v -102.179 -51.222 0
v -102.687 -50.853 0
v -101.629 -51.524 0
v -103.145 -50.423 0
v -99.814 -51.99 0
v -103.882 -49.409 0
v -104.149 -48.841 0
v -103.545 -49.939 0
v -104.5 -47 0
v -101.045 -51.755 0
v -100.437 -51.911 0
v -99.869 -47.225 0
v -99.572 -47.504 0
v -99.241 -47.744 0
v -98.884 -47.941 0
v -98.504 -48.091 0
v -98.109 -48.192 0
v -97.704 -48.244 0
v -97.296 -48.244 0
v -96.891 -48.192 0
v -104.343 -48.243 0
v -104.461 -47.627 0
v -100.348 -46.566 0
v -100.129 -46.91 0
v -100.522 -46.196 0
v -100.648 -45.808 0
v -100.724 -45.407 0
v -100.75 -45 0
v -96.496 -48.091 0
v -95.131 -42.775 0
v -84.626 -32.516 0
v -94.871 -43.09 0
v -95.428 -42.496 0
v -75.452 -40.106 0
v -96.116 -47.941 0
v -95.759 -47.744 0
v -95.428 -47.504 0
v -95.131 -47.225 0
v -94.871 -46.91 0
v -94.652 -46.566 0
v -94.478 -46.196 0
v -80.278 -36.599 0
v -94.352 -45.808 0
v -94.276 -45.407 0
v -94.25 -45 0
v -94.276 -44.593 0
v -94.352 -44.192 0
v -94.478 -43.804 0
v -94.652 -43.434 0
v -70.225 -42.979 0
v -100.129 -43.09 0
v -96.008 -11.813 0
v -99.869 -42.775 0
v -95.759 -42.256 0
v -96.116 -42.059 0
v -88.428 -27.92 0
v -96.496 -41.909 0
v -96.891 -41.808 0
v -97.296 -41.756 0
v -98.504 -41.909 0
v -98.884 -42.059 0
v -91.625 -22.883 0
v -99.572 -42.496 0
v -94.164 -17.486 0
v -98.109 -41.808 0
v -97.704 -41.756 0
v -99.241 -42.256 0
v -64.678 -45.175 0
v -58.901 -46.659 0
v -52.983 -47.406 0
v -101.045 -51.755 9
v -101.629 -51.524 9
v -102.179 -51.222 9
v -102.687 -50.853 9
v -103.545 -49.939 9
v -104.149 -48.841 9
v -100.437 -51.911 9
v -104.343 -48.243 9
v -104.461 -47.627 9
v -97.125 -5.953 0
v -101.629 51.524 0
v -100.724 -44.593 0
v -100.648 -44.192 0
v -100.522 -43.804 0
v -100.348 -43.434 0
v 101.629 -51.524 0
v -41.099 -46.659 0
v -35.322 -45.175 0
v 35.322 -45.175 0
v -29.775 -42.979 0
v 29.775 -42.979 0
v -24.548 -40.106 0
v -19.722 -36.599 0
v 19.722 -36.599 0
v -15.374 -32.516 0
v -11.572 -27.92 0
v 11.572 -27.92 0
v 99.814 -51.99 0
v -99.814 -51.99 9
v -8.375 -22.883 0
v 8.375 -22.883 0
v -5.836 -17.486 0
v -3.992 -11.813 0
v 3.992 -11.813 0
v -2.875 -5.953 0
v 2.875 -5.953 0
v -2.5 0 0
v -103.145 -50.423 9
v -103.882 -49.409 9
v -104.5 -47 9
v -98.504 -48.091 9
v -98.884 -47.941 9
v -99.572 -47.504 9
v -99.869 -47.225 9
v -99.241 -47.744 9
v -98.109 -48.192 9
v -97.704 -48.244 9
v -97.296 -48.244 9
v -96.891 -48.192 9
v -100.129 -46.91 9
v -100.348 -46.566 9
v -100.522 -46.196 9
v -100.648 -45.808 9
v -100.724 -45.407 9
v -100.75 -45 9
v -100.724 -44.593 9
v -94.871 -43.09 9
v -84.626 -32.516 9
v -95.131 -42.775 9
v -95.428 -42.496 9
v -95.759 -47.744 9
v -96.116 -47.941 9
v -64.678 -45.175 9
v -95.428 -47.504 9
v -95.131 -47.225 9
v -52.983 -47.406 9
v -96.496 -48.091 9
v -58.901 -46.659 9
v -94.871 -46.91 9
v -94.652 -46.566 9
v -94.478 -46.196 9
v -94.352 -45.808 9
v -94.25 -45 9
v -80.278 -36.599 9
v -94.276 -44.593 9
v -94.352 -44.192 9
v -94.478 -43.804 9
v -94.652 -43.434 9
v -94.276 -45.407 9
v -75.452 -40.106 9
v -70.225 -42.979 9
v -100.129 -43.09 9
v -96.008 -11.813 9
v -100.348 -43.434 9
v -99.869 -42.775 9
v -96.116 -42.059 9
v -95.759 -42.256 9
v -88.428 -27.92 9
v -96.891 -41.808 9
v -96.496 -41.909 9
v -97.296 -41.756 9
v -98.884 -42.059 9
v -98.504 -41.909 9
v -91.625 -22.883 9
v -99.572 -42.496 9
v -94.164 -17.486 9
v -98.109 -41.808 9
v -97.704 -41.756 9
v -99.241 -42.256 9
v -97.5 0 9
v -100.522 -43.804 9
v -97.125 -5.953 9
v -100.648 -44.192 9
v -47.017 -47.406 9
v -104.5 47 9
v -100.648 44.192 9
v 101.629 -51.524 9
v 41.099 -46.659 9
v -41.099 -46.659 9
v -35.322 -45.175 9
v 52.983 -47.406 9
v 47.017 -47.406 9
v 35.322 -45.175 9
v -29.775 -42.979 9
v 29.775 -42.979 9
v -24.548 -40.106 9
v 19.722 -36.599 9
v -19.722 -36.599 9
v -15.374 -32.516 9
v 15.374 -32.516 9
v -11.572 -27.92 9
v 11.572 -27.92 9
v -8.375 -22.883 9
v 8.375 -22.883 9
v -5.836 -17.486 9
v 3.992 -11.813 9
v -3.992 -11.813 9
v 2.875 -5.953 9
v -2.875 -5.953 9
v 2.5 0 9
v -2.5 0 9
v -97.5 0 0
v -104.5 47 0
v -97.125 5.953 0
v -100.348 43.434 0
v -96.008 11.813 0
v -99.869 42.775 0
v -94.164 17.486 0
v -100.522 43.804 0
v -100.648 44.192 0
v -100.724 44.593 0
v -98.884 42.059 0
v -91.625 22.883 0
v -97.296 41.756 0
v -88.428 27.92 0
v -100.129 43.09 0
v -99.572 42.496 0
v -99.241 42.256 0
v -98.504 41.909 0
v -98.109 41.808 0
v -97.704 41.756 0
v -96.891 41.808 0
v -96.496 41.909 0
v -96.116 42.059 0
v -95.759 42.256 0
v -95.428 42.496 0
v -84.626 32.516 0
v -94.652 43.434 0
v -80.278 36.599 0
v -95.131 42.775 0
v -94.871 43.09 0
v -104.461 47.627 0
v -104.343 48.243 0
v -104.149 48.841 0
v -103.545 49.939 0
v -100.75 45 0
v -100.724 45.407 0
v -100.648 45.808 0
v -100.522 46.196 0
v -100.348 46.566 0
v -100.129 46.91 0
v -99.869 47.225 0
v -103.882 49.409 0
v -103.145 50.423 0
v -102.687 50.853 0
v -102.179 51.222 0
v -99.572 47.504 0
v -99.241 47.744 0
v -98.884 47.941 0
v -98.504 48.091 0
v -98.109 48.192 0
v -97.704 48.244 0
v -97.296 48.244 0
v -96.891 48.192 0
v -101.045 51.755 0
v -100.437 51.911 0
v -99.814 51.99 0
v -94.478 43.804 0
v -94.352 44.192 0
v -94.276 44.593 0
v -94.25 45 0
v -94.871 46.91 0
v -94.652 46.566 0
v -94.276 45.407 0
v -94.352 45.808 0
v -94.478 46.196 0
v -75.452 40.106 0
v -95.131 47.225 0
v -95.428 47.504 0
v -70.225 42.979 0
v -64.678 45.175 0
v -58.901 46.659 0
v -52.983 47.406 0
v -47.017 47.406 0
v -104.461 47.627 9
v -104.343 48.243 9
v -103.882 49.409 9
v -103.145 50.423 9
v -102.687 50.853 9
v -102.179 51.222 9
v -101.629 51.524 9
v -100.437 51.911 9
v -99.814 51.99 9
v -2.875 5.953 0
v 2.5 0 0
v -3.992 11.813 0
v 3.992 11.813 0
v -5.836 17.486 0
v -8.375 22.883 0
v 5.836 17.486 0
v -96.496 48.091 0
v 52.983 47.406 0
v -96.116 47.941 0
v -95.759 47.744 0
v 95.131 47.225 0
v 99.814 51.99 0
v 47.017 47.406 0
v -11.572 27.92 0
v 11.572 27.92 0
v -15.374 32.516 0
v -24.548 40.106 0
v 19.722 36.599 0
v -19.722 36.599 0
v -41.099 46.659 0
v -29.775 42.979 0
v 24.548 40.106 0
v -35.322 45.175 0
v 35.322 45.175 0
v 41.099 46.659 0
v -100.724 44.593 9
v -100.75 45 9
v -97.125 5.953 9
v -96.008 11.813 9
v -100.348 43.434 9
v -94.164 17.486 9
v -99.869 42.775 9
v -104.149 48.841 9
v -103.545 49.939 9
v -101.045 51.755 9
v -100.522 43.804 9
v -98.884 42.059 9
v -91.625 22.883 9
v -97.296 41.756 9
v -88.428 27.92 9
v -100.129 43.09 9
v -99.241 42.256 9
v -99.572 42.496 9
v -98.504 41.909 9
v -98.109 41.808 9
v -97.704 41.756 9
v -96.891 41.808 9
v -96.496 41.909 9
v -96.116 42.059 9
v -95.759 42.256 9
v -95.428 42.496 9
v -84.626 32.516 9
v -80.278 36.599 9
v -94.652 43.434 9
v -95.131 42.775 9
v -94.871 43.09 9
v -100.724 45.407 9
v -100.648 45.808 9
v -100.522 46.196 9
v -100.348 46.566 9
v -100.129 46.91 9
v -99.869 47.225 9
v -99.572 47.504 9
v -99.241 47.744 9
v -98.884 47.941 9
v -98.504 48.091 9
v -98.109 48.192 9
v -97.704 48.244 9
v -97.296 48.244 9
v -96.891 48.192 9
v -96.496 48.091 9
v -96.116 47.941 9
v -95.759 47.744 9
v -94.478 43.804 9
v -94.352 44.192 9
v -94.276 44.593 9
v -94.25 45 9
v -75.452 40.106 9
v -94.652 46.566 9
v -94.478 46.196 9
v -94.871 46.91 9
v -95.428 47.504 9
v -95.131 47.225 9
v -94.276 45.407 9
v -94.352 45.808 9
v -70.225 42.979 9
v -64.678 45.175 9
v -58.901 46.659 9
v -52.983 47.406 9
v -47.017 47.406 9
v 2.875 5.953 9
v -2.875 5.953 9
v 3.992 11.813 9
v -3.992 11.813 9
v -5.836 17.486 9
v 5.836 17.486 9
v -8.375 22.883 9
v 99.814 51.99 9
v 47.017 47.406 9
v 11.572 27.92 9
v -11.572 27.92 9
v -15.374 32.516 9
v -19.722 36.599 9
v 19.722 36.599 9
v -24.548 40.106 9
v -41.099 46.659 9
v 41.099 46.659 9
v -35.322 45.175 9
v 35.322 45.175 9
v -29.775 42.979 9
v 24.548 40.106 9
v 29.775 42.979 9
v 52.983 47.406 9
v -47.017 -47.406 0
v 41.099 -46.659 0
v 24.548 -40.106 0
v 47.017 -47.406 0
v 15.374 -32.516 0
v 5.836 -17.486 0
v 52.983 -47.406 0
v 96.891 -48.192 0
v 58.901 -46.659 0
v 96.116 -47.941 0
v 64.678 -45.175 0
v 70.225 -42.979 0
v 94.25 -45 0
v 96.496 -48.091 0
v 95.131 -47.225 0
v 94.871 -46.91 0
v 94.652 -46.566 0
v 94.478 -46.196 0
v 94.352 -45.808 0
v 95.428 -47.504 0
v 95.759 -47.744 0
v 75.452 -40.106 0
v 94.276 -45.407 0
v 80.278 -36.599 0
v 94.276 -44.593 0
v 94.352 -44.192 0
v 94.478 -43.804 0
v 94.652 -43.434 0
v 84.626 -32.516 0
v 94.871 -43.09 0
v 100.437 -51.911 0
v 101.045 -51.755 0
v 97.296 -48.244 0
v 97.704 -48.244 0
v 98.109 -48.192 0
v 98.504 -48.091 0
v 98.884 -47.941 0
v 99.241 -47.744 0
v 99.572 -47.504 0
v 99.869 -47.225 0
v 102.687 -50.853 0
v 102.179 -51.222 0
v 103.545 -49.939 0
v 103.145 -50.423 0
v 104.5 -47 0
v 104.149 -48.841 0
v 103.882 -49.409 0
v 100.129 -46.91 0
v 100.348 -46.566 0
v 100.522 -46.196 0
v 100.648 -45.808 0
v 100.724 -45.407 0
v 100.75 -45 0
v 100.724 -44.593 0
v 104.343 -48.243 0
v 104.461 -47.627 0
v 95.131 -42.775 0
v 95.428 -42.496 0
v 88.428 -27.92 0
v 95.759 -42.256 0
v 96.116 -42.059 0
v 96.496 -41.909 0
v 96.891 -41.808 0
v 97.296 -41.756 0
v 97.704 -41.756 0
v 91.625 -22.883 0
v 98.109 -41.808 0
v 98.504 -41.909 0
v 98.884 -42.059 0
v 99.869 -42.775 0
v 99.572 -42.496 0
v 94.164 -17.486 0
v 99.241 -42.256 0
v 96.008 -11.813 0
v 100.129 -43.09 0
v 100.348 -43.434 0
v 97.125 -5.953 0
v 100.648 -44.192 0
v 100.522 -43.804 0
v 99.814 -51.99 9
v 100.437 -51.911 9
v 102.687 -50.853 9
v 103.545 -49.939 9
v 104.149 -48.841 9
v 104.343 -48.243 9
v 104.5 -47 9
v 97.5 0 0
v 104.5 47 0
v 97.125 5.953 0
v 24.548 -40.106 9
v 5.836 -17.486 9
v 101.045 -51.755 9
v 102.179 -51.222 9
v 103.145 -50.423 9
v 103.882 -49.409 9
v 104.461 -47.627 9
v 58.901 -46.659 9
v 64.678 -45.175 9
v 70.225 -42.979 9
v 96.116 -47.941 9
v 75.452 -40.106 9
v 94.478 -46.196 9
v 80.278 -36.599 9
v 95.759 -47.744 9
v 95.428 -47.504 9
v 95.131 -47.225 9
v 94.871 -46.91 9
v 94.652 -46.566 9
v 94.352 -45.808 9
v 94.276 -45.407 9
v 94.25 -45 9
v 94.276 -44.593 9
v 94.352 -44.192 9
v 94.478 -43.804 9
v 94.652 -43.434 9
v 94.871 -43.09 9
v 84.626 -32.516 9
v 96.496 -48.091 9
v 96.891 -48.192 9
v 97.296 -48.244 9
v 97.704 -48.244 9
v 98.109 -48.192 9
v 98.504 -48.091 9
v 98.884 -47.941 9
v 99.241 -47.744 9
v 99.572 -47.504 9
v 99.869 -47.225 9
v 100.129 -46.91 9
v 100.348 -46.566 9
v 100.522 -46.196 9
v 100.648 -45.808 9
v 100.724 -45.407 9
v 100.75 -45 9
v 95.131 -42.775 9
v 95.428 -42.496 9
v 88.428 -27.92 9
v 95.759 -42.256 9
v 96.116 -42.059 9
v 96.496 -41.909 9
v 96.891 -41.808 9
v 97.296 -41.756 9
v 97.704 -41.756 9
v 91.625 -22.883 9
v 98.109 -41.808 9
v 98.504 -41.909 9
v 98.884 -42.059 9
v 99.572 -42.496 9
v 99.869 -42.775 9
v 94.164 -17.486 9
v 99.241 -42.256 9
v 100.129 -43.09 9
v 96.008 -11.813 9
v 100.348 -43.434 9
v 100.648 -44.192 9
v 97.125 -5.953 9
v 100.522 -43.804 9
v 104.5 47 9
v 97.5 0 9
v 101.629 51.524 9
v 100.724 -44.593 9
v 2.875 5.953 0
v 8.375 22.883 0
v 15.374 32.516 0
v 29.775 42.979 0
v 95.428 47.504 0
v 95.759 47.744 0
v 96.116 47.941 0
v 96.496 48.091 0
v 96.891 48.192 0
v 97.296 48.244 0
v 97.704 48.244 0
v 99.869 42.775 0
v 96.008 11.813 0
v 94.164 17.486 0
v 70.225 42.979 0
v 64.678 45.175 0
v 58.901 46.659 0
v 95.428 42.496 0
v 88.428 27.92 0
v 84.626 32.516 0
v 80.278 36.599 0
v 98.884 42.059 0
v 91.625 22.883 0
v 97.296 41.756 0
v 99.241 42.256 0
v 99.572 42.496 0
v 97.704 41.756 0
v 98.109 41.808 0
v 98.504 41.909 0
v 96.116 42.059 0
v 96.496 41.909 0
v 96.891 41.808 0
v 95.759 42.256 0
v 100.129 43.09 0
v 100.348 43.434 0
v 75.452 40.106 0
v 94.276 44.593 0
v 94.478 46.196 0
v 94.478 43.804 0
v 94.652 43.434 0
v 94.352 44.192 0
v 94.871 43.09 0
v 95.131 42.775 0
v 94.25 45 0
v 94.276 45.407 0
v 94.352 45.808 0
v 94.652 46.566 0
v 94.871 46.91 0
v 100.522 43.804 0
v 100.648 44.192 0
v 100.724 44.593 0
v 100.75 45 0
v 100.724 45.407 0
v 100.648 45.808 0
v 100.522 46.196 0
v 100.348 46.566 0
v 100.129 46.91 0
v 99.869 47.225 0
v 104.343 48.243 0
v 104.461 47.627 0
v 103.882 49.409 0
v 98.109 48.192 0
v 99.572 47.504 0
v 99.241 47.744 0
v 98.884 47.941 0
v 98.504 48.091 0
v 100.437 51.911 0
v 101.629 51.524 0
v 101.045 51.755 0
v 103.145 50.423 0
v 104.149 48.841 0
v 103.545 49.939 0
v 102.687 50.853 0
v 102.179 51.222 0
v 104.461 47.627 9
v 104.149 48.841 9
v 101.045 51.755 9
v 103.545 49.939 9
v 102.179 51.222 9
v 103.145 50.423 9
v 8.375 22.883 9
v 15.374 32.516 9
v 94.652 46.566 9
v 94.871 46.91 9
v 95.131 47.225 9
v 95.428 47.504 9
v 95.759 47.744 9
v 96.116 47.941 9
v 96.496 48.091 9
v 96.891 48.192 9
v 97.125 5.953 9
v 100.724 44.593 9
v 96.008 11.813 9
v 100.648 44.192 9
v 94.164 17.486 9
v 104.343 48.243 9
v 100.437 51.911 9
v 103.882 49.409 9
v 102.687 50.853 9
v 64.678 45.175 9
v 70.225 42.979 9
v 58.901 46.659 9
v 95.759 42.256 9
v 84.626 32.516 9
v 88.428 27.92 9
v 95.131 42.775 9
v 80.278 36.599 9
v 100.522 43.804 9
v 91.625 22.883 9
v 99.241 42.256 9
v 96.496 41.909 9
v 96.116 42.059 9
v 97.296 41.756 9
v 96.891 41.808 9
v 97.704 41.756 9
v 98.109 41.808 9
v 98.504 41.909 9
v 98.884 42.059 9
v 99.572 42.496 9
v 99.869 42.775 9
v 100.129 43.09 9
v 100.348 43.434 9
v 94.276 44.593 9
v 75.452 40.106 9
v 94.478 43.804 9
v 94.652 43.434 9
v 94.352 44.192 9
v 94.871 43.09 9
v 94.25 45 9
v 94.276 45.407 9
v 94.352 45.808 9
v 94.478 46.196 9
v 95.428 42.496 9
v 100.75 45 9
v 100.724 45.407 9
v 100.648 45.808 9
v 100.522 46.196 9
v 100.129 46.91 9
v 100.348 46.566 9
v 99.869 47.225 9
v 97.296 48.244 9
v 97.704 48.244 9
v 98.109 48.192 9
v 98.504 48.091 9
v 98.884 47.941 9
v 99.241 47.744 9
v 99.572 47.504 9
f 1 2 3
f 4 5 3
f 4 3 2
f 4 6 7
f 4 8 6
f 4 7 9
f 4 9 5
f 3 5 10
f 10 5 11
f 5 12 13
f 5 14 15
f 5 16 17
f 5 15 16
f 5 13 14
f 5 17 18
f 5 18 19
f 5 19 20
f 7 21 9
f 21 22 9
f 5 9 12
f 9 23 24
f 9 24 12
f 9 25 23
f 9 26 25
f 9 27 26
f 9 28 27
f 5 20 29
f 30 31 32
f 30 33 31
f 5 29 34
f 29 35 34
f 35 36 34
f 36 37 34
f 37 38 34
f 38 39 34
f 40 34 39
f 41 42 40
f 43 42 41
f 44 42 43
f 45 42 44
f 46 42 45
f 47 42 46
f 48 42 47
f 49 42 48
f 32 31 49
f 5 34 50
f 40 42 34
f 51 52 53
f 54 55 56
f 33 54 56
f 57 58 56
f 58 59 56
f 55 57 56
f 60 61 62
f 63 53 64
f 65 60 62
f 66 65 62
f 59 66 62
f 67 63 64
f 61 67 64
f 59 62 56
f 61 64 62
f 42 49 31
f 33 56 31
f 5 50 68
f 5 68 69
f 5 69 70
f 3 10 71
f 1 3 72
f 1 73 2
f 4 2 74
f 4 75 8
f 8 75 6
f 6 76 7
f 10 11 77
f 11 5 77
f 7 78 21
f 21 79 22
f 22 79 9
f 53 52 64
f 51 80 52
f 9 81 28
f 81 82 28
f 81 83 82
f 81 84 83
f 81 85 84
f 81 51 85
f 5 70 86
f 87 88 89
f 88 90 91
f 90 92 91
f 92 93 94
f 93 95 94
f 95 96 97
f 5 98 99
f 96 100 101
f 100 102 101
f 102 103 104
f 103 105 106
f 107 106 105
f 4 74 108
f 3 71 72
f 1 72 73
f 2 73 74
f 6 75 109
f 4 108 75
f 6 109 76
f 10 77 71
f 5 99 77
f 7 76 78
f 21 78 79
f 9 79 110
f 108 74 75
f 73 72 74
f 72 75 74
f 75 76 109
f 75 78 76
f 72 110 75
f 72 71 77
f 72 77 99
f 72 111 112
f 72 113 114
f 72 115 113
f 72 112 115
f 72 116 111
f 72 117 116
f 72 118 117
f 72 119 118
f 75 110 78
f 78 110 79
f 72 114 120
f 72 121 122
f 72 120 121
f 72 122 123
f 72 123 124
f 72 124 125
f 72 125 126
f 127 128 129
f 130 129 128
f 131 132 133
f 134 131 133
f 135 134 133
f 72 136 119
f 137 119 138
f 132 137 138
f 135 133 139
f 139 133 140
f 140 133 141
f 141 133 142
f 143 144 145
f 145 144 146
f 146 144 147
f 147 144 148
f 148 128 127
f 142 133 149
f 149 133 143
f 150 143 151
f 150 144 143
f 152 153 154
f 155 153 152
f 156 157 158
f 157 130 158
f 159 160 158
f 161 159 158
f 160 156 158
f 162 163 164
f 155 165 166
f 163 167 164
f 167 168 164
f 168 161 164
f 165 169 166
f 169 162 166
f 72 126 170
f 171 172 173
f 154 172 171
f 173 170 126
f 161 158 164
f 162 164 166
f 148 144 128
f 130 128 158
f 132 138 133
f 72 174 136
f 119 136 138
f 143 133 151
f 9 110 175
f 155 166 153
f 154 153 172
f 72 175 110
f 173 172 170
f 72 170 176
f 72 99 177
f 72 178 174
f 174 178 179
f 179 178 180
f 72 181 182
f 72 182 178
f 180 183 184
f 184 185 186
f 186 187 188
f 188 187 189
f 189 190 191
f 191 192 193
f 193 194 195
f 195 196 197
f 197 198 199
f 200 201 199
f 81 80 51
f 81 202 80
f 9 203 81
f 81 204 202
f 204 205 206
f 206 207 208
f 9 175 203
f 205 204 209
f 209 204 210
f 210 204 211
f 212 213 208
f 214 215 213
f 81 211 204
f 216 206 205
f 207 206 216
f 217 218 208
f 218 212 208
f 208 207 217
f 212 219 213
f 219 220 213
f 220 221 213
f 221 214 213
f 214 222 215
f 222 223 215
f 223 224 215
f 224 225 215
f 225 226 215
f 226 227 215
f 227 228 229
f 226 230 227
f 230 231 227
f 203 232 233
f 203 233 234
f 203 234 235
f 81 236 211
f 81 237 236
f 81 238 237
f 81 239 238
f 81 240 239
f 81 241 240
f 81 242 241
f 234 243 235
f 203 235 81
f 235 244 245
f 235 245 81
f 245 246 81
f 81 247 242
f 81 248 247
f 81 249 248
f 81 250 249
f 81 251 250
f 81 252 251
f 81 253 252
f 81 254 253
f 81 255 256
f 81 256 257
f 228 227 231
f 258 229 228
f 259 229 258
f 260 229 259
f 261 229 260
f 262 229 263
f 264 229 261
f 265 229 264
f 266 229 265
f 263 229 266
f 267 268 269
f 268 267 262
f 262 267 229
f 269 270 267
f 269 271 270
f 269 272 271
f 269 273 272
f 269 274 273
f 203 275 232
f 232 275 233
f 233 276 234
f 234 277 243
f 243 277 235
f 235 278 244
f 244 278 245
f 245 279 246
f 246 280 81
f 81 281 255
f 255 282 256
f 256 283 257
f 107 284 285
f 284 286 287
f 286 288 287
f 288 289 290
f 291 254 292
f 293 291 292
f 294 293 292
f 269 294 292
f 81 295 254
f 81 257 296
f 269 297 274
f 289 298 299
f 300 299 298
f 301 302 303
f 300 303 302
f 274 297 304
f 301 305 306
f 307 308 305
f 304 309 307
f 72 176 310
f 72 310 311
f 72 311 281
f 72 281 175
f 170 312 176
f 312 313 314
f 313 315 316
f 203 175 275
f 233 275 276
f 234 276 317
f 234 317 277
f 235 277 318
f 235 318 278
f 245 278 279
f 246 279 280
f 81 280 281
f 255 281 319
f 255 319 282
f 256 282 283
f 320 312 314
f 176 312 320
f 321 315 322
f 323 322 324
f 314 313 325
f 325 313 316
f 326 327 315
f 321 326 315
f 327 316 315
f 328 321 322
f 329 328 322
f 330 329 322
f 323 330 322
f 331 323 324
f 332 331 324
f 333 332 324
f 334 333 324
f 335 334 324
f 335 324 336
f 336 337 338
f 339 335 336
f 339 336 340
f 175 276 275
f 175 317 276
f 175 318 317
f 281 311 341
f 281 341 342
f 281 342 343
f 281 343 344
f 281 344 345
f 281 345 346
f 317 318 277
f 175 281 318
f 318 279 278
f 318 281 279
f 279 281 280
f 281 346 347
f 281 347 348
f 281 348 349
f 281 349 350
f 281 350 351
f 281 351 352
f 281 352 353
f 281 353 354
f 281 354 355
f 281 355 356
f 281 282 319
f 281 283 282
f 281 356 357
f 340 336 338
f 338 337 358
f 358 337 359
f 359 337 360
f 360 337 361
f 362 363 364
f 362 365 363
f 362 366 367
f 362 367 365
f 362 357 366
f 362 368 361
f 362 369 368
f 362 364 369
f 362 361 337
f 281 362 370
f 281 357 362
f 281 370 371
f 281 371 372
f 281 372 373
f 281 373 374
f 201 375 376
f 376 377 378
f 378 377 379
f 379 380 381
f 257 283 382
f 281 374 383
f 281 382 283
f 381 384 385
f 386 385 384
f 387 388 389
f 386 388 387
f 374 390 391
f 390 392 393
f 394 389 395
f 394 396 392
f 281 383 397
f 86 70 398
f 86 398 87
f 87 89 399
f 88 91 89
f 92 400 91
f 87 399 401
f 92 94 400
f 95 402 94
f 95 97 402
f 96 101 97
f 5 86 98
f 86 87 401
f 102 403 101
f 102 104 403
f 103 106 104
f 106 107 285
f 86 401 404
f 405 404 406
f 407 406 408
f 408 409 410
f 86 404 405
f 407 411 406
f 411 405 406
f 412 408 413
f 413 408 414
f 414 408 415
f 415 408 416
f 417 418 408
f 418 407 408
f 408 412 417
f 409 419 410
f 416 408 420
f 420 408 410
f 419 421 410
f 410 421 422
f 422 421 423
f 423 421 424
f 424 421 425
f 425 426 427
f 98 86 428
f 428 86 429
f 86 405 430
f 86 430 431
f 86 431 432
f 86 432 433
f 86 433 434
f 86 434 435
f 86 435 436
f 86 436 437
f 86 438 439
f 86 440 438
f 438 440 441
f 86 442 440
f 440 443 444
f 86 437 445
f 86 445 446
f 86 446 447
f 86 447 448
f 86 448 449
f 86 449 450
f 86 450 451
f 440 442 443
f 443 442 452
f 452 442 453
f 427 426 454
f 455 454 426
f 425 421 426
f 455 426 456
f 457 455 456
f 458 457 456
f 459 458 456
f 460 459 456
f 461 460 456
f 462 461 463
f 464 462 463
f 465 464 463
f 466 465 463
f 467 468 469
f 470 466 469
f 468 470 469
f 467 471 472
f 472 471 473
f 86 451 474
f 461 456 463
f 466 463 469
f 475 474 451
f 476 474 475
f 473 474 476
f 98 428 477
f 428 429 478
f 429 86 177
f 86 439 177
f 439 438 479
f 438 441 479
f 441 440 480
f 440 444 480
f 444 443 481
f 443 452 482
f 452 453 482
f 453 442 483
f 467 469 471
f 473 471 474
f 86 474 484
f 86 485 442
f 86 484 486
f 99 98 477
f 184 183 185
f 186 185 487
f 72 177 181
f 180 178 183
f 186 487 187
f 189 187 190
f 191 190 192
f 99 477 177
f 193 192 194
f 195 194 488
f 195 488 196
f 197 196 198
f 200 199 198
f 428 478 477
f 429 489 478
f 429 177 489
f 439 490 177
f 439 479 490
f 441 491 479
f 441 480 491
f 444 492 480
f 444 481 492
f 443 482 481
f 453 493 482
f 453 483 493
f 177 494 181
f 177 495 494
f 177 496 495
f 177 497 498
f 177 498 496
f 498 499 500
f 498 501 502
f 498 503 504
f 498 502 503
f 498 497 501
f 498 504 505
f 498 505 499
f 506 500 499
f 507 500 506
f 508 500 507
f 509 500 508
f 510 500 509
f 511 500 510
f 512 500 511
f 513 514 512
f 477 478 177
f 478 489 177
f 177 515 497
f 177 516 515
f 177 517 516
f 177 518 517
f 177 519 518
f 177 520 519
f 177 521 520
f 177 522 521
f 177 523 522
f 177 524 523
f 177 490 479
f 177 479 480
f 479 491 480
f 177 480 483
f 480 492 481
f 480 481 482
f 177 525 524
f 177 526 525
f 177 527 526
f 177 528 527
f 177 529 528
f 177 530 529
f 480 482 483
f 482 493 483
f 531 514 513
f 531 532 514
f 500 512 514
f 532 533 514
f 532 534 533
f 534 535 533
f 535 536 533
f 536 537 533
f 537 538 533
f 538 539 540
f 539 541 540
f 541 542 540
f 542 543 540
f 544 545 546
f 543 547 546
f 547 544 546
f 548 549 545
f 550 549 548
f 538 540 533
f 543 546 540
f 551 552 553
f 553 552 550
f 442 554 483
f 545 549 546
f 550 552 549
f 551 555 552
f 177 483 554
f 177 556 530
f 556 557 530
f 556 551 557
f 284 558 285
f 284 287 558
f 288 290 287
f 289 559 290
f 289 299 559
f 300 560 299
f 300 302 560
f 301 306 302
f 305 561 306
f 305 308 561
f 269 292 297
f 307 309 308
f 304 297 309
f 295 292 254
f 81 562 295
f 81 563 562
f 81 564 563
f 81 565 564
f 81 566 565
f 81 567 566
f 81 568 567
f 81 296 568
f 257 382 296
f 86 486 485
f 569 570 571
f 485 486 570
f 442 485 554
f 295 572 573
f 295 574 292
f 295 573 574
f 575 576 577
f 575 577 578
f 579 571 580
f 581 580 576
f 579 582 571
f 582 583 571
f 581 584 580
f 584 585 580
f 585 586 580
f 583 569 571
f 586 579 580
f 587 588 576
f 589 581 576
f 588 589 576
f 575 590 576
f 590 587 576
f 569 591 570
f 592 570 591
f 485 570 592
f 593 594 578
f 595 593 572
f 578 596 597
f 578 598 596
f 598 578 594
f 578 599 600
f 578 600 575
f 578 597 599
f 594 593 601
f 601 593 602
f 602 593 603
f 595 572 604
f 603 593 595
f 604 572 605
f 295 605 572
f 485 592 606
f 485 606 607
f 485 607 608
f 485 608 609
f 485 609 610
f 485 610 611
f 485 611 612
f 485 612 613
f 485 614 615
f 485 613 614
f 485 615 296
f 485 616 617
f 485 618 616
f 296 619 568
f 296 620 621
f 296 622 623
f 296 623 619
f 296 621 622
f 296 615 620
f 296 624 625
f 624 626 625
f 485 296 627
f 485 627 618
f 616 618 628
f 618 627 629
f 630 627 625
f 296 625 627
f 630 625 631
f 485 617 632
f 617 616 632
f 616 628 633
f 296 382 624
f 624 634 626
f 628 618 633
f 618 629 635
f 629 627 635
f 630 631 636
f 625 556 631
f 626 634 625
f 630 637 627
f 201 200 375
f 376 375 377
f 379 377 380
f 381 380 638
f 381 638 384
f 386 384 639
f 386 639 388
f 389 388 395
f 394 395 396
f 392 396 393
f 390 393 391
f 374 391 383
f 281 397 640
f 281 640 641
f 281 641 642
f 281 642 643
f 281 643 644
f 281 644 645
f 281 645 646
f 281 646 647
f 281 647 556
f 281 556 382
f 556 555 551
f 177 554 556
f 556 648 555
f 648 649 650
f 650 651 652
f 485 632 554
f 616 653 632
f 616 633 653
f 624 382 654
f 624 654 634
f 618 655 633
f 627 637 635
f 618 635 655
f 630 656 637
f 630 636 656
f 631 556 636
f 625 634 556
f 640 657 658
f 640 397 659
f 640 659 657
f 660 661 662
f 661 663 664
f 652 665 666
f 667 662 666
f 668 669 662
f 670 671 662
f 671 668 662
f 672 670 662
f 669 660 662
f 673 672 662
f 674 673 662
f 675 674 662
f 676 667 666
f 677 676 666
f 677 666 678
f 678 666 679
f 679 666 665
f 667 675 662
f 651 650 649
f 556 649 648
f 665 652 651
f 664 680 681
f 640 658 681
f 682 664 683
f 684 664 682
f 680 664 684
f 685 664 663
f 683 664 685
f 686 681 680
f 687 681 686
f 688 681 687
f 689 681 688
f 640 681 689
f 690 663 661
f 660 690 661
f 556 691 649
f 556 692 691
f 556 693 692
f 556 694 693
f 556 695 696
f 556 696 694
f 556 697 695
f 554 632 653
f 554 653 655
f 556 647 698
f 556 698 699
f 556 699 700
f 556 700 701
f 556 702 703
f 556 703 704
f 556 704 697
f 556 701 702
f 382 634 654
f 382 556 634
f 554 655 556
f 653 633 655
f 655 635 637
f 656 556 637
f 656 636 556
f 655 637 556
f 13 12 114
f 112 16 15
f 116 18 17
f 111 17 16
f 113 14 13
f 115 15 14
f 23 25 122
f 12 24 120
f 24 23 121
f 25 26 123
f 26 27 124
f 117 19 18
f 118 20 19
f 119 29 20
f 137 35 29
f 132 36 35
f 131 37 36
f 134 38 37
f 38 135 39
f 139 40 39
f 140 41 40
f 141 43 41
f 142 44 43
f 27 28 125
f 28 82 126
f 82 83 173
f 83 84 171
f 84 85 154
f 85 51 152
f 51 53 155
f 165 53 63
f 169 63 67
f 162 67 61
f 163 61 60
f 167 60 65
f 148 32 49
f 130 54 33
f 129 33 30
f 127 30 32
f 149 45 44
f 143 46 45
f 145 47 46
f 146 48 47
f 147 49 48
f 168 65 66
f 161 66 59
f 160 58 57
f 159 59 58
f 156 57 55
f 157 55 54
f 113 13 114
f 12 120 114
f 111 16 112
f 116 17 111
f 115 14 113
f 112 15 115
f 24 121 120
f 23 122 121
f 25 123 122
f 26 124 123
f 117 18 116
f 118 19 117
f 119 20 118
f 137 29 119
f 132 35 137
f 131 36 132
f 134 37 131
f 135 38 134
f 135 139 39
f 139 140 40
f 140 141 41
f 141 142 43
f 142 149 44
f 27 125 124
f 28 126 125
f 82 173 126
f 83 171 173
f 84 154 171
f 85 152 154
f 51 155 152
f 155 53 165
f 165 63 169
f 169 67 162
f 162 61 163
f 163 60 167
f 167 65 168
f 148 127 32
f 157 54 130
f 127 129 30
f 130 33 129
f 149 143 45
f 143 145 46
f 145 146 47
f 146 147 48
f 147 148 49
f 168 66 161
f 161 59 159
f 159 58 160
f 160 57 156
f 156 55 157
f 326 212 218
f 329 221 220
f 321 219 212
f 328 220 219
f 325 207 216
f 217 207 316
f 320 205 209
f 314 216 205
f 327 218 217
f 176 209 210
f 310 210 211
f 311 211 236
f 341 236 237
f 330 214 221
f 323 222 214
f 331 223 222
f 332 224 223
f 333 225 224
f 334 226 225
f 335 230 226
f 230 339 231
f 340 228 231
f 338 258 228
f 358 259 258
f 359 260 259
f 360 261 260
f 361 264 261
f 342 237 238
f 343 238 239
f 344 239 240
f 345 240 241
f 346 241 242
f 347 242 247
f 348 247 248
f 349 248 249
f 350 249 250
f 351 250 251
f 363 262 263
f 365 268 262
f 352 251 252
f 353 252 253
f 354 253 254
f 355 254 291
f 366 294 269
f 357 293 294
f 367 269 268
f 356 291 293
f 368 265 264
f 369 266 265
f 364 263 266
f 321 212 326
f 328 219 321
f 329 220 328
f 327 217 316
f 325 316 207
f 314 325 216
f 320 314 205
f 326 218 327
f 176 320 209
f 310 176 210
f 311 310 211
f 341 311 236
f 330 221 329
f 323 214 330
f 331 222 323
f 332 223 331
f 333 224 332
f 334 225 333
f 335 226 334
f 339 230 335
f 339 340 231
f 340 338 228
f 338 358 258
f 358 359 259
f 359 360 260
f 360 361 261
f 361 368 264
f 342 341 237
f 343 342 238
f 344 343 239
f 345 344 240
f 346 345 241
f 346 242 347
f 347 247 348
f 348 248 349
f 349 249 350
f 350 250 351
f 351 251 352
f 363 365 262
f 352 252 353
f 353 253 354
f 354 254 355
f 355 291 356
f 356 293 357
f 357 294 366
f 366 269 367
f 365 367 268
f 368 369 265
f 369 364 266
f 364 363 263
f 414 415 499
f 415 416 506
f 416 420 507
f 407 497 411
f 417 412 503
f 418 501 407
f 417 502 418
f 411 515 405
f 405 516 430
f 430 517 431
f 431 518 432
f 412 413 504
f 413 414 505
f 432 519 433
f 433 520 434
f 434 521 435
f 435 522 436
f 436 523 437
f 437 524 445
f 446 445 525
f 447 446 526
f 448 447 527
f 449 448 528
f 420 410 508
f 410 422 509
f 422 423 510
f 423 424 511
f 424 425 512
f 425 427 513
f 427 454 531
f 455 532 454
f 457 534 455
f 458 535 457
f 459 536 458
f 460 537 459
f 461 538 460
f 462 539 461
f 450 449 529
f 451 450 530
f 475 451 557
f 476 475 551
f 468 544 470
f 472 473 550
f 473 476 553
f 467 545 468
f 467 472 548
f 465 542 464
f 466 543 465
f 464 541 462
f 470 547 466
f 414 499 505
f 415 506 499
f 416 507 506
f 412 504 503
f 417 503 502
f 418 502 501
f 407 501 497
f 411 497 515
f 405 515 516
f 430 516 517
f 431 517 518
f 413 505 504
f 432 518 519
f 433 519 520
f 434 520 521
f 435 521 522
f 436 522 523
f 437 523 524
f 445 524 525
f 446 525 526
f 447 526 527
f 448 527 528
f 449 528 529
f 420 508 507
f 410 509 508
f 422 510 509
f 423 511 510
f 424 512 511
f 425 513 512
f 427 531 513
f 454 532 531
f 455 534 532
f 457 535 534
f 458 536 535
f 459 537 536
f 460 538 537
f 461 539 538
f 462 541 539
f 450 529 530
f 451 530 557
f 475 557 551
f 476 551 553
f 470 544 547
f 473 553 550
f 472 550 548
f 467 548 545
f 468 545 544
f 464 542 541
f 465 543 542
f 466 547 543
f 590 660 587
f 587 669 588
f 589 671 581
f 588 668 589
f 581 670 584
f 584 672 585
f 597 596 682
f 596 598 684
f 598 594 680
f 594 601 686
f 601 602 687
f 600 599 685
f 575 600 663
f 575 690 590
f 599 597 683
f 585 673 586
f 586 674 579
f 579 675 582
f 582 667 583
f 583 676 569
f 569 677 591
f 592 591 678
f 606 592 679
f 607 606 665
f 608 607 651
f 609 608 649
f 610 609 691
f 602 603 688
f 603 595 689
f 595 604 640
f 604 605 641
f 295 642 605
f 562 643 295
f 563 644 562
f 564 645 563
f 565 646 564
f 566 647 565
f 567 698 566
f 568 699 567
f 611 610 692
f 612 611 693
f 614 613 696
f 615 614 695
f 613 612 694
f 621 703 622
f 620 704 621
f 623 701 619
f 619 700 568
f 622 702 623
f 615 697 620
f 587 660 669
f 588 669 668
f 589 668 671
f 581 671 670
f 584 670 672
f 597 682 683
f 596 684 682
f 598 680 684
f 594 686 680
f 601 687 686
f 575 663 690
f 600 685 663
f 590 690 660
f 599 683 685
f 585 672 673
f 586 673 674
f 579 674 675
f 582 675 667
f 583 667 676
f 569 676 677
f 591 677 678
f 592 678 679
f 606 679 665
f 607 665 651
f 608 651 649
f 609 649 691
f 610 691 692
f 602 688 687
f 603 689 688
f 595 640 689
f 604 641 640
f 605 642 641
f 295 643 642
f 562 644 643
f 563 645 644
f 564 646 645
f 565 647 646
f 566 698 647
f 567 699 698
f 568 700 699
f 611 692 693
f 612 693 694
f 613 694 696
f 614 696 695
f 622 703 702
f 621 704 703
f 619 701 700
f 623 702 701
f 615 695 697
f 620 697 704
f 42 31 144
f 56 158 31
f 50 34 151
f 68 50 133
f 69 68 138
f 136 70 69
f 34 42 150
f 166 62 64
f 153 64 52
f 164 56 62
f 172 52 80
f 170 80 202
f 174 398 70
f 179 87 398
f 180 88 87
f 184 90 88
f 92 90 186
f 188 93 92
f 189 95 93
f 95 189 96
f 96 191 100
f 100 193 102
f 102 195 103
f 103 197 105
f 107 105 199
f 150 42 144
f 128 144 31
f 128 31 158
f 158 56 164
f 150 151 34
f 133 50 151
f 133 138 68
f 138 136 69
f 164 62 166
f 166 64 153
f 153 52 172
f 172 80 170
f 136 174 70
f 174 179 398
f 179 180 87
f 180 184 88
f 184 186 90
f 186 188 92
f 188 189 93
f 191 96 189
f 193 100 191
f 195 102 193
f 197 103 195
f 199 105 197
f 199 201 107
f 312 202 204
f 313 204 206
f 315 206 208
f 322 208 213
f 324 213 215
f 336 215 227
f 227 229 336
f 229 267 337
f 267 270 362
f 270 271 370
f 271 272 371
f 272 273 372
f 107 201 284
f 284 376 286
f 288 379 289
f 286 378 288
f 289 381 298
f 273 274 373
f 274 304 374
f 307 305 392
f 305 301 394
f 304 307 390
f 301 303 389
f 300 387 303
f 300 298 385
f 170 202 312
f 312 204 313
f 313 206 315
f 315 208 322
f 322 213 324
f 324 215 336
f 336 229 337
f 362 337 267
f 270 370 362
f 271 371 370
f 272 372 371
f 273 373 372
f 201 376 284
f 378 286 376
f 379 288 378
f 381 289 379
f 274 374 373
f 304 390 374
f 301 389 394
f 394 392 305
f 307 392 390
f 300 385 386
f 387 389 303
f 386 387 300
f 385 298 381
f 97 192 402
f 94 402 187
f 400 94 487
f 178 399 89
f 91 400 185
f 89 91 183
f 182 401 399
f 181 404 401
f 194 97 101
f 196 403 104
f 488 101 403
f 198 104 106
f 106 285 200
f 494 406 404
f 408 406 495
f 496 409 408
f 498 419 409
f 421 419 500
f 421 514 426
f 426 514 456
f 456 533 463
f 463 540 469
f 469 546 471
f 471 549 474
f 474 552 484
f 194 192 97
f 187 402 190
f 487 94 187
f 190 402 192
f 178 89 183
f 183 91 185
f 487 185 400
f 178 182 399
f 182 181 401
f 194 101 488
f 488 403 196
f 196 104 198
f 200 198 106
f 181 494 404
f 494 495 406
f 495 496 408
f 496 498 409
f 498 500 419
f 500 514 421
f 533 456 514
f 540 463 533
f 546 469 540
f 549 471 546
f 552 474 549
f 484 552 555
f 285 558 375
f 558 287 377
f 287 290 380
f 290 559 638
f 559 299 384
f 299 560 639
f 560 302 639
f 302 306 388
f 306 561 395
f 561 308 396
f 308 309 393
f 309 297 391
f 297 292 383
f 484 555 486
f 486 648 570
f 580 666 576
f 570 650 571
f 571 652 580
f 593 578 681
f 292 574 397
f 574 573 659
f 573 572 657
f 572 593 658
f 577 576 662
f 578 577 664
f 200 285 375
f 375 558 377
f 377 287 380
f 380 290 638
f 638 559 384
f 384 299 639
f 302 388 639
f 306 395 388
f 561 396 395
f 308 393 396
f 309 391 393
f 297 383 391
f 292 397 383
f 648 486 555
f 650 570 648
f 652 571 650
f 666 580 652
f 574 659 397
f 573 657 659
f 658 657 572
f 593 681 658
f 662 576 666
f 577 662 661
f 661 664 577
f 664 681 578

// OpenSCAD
$fn = 50;

difference() {
	union() {
		hull() {
			translate(v = [-99.5, 47.0, 0]) {
				cylinder(h = 9, r = 5);
			}
			translate(v = [99.5, 47.0, 0]) {
				cylinder(h = 9, r = 5);
			}
			translate(v = [-99.5, -47.0, 0]) {
				cylinder(h = 9, r = 5);
			}
			translate(v = [99.5, -47.0, 0]) {
				cylinder(h = 9, r = 5);
			}
		}
	}
	union() {
		translate(v = [-97.5, -45.0, -100.0]) {
			cylinder(h = 200, r = 3.25);
		}
		translate(v = [-97.5, 45.0, -100.0]) {
			cylinder(h = 200, r = 3.25);
		}
		translate(v = [97.5, -45.0, -100.0]) {
			cylinder(h = 200, r = 3.25);
		}
		translate(v = [97.5, 45.0, -100.0]) {
			cylinder(h = 200, r = 3.25);
		}
		translate(v = [-97.5, -45.0, -100.0]) {
			cylinder(h = 200, r = 1.8);
		}
		translate(v = [-97.5, 45.0, -100.0]) {
			cylinder(h = 200, r = 1.8);
		}
		translate(v = [97.5, -45.0, -100.0]) {
			cylinder(h = 200, r = 1.8);
		}
		translate(v = [97.5, 45.0, -100.0]) {
			cylinder(h = 200, r = 1.8);
		}
		translate(v = [-50.0, 0, 0.0]) {
			cylinder(h = 9, r = 47.5);
		}
		translate(v = [50.0, 0, 0.0]) {
			cylinder(h = 9, r = 47.5);
		}
	}
}
